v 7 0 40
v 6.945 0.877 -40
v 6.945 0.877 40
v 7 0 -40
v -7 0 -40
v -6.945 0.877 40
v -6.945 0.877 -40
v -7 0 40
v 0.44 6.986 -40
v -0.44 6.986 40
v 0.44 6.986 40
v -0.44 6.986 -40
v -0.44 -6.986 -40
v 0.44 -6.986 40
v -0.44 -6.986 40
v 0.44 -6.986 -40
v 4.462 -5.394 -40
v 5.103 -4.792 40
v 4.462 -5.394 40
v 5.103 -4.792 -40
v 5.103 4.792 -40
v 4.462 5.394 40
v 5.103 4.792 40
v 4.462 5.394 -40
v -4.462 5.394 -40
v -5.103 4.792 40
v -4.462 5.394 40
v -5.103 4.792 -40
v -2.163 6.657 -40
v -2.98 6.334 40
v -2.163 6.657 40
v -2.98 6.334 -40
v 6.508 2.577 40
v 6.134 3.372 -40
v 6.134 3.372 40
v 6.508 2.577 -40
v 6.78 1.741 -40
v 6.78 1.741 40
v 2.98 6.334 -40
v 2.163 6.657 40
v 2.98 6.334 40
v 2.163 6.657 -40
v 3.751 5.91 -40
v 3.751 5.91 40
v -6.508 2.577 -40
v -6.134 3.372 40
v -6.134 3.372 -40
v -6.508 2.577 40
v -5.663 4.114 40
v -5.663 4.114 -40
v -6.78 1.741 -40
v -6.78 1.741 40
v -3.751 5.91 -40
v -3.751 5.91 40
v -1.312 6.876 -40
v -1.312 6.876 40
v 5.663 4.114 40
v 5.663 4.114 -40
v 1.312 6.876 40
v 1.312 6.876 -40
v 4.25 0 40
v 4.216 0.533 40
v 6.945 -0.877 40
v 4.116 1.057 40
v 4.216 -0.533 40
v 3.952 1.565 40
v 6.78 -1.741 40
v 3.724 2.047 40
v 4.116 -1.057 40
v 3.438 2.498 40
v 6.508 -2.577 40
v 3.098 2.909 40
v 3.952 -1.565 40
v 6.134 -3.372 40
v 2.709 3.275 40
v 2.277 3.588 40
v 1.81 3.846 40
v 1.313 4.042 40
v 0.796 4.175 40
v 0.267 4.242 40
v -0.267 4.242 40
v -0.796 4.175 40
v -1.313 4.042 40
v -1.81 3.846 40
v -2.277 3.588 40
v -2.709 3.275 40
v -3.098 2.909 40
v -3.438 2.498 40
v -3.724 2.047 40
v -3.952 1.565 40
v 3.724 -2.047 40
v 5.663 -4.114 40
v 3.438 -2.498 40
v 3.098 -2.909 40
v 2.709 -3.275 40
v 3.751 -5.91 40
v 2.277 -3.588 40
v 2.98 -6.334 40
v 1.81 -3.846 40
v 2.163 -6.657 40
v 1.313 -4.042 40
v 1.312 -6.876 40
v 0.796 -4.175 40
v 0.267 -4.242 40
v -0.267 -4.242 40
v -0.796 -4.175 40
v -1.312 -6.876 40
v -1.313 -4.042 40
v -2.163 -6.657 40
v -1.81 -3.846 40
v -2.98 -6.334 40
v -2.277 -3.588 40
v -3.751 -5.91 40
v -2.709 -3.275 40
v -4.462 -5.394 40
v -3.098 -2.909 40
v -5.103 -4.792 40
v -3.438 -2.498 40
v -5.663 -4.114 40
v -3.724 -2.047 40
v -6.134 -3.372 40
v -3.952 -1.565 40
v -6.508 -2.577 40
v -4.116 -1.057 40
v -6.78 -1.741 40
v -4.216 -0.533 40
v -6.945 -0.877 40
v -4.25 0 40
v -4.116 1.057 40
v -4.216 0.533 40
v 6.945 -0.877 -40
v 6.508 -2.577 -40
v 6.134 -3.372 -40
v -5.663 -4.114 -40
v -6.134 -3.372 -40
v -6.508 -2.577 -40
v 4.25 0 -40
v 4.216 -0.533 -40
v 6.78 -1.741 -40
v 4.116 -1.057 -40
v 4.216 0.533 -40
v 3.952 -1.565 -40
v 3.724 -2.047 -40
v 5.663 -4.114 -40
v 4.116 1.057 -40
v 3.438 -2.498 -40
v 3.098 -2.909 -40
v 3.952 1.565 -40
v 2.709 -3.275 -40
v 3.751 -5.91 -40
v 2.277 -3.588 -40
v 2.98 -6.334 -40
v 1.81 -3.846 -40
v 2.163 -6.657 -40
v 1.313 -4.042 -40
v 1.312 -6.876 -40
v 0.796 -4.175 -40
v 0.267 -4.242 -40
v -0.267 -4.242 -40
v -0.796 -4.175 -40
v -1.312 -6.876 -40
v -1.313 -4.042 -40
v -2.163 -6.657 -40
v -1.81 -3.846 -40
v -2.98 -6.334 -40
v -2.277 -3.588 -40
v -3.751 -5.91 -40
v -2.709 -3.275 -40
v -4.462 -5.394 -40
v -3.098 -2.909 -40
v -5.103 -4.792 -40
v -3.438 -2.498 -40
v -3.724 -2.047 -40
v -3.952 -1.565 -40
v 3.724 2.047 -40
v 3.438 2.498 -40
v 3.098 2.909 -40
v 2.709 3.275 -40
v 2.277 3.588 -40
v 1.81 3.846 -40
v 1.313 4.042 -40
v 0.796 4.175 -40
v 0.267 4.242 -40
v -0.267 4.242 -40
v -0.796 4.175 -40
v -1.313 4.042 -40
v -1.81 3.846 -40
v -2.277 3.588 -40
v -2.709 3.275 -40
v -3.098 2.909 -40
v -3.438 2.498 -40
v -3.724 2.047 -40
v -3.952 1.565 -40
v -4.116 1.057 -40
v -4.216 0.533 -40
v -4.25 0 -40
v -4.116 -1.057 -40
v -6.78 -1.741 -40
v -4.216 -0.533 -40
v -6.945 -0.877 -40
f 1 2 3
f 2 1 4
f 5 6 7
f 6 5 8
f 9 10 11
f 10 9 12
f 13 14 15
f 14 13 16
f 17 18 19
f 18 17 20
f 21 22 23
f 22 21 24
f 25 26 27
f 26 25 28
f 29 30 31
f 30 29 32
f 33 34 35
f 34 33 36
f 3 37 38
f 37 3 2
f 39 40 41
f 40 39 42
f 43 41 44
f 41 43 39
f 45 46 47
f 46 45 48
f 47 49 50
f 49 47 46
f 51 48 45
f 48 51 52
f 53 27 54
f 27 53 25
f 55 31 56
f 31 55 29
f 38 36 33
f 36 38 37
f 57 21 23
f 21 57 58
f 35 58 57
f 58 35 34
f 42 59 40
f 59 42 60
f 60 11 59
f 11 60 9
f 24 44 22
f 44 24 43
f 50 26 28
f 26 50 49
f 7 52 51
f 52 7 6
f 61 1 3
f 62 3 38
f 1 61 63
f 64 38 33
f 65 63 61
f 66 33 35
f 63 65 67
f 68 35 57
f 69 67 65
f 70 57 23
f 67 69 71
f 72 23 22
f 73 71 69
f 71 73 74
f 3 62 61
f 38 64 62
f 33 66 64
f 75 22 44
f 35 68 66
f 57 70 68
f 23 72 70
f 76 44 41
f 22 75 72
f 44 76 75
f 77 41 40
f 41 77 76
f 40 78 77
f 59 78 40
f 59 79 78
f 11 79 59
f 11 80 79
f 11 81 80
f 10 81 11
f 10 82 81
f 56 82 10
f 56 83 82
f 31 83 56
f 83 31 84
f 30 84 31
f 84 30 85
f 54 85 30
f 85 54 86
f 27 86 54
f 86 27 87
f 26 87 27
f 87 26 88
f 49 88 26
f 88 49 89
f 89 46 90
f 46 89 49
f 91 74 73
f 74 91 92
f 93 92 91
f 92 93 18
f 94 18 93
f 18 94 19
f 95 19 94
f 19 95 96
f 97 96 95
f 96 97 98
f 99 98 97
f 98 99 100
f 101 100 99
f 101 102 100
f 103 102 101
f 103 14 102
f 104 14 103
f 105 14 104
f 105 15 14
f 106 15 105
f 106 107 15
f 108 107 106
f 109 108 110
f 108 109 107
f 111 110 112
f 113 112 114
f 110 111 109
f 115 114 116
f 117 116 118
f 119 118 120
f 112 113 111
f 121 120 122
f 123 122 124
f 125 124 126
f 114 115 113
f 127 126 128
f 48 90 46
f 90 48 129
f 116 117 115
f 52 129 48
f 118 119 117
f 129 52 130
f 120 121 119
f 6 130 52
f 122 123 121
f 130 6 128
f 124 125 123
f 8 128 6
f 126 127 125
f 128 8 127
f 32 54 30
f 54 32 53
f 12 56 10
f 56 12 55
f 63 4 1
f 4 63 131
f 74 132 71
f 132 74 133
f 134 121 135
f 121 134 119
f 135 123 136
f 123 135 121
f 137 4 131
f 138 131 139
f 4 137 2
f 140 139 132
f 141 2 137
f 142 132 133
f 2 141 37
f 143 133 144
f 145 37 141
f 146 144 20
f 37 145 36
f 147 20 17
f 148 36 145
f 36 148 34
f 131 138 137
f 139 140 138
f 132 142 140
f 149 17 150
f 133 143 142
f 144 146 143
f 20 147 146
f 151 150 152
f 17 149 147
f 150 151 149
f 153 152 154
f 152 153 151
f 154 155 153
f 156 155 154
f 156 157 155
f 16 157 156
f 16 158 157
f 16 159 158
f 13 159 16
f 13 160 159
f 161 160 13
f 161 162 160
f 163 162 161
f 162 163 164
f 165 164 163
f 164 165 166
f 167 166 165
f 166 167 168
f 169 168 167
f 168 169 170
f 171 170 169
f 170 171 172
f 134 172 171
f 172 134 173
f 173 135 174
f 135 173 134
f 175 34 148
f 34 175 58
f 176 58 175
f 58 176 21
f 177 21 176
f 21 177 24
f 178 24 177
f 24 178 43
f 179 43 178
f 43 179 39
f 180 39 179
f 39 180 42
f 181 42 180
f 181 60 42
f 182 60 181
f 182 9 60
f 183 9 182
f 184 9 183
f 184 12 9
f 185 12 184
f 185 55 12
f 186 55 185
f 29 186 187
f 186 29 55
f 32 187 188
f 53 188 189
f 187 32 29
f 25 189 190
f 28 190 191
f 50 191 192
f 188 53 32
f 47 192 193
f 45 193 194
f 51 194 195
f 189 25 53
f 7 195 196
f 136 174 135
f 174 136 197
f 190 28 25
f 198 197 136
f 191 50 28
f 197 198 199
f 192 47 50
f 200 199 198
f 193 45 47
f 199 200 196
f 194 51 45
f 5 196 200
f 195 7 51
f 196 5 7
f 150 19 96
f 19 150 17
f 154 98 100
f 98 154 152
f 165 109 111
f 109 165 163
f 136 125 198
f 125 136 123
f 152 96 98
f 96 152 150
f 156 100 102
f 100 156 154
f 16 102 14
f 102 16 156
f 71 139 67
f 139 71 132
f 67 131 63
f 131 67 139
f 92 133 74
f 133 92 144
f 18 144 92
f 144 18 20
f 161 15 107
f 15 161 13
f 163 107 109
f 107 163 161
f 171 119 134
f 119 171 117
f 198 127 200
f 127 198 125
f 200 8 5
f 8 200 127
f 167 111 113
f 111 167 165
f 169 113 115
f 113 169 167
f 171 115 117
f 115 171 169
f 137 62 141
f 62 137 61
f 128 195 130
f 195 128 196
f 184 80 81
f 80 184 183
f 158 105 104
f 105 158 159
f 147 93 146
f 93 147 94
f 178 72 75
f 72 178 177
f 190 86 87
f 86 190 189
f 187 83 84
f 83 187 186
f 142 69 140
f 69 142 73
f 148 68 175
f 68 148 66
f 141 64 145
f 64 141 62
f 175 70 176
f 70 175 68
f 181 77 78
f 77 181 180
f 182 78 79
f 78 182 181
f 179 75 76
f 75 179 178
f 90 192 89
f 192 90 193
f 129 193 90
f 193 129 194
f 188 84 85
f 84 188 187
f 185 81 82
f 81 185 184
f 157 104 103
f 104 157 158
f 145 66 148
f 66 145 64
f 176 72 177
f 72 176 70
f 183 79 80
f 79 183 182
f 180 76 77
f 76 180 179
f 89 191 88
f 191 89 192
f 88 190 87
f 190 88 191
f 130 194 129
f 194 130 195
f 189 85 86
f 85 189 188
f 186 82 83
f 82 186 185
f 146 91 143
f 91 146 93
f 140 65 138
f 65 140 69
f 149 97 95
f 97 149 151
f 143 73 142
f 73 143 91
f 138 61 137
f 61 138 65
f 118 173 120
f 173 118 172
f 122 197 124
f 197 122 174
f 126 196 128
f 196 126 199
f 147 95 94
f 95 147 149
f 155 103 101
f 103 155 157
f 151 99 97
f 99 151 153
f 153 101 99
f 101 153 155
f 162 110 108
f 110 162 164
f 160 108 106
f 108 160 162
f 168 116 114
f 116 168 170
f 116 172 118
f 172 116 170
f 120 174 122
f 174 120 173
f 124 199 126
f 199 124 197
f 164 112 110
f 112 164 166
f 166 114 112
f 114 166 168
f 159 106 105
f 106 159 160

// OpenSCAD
$fn = 50;


difference() {
	union() {
		translate(v = [0, 0, -40.0000000000]) {
			cylinder(h = 80, r = 7.0000000000);
		}
	}
	union() {
		translate(v = [0, 0, -100.0000000000]) {
			cylinder(h = 200, r = 4.2500000000);
		}
	}
}
